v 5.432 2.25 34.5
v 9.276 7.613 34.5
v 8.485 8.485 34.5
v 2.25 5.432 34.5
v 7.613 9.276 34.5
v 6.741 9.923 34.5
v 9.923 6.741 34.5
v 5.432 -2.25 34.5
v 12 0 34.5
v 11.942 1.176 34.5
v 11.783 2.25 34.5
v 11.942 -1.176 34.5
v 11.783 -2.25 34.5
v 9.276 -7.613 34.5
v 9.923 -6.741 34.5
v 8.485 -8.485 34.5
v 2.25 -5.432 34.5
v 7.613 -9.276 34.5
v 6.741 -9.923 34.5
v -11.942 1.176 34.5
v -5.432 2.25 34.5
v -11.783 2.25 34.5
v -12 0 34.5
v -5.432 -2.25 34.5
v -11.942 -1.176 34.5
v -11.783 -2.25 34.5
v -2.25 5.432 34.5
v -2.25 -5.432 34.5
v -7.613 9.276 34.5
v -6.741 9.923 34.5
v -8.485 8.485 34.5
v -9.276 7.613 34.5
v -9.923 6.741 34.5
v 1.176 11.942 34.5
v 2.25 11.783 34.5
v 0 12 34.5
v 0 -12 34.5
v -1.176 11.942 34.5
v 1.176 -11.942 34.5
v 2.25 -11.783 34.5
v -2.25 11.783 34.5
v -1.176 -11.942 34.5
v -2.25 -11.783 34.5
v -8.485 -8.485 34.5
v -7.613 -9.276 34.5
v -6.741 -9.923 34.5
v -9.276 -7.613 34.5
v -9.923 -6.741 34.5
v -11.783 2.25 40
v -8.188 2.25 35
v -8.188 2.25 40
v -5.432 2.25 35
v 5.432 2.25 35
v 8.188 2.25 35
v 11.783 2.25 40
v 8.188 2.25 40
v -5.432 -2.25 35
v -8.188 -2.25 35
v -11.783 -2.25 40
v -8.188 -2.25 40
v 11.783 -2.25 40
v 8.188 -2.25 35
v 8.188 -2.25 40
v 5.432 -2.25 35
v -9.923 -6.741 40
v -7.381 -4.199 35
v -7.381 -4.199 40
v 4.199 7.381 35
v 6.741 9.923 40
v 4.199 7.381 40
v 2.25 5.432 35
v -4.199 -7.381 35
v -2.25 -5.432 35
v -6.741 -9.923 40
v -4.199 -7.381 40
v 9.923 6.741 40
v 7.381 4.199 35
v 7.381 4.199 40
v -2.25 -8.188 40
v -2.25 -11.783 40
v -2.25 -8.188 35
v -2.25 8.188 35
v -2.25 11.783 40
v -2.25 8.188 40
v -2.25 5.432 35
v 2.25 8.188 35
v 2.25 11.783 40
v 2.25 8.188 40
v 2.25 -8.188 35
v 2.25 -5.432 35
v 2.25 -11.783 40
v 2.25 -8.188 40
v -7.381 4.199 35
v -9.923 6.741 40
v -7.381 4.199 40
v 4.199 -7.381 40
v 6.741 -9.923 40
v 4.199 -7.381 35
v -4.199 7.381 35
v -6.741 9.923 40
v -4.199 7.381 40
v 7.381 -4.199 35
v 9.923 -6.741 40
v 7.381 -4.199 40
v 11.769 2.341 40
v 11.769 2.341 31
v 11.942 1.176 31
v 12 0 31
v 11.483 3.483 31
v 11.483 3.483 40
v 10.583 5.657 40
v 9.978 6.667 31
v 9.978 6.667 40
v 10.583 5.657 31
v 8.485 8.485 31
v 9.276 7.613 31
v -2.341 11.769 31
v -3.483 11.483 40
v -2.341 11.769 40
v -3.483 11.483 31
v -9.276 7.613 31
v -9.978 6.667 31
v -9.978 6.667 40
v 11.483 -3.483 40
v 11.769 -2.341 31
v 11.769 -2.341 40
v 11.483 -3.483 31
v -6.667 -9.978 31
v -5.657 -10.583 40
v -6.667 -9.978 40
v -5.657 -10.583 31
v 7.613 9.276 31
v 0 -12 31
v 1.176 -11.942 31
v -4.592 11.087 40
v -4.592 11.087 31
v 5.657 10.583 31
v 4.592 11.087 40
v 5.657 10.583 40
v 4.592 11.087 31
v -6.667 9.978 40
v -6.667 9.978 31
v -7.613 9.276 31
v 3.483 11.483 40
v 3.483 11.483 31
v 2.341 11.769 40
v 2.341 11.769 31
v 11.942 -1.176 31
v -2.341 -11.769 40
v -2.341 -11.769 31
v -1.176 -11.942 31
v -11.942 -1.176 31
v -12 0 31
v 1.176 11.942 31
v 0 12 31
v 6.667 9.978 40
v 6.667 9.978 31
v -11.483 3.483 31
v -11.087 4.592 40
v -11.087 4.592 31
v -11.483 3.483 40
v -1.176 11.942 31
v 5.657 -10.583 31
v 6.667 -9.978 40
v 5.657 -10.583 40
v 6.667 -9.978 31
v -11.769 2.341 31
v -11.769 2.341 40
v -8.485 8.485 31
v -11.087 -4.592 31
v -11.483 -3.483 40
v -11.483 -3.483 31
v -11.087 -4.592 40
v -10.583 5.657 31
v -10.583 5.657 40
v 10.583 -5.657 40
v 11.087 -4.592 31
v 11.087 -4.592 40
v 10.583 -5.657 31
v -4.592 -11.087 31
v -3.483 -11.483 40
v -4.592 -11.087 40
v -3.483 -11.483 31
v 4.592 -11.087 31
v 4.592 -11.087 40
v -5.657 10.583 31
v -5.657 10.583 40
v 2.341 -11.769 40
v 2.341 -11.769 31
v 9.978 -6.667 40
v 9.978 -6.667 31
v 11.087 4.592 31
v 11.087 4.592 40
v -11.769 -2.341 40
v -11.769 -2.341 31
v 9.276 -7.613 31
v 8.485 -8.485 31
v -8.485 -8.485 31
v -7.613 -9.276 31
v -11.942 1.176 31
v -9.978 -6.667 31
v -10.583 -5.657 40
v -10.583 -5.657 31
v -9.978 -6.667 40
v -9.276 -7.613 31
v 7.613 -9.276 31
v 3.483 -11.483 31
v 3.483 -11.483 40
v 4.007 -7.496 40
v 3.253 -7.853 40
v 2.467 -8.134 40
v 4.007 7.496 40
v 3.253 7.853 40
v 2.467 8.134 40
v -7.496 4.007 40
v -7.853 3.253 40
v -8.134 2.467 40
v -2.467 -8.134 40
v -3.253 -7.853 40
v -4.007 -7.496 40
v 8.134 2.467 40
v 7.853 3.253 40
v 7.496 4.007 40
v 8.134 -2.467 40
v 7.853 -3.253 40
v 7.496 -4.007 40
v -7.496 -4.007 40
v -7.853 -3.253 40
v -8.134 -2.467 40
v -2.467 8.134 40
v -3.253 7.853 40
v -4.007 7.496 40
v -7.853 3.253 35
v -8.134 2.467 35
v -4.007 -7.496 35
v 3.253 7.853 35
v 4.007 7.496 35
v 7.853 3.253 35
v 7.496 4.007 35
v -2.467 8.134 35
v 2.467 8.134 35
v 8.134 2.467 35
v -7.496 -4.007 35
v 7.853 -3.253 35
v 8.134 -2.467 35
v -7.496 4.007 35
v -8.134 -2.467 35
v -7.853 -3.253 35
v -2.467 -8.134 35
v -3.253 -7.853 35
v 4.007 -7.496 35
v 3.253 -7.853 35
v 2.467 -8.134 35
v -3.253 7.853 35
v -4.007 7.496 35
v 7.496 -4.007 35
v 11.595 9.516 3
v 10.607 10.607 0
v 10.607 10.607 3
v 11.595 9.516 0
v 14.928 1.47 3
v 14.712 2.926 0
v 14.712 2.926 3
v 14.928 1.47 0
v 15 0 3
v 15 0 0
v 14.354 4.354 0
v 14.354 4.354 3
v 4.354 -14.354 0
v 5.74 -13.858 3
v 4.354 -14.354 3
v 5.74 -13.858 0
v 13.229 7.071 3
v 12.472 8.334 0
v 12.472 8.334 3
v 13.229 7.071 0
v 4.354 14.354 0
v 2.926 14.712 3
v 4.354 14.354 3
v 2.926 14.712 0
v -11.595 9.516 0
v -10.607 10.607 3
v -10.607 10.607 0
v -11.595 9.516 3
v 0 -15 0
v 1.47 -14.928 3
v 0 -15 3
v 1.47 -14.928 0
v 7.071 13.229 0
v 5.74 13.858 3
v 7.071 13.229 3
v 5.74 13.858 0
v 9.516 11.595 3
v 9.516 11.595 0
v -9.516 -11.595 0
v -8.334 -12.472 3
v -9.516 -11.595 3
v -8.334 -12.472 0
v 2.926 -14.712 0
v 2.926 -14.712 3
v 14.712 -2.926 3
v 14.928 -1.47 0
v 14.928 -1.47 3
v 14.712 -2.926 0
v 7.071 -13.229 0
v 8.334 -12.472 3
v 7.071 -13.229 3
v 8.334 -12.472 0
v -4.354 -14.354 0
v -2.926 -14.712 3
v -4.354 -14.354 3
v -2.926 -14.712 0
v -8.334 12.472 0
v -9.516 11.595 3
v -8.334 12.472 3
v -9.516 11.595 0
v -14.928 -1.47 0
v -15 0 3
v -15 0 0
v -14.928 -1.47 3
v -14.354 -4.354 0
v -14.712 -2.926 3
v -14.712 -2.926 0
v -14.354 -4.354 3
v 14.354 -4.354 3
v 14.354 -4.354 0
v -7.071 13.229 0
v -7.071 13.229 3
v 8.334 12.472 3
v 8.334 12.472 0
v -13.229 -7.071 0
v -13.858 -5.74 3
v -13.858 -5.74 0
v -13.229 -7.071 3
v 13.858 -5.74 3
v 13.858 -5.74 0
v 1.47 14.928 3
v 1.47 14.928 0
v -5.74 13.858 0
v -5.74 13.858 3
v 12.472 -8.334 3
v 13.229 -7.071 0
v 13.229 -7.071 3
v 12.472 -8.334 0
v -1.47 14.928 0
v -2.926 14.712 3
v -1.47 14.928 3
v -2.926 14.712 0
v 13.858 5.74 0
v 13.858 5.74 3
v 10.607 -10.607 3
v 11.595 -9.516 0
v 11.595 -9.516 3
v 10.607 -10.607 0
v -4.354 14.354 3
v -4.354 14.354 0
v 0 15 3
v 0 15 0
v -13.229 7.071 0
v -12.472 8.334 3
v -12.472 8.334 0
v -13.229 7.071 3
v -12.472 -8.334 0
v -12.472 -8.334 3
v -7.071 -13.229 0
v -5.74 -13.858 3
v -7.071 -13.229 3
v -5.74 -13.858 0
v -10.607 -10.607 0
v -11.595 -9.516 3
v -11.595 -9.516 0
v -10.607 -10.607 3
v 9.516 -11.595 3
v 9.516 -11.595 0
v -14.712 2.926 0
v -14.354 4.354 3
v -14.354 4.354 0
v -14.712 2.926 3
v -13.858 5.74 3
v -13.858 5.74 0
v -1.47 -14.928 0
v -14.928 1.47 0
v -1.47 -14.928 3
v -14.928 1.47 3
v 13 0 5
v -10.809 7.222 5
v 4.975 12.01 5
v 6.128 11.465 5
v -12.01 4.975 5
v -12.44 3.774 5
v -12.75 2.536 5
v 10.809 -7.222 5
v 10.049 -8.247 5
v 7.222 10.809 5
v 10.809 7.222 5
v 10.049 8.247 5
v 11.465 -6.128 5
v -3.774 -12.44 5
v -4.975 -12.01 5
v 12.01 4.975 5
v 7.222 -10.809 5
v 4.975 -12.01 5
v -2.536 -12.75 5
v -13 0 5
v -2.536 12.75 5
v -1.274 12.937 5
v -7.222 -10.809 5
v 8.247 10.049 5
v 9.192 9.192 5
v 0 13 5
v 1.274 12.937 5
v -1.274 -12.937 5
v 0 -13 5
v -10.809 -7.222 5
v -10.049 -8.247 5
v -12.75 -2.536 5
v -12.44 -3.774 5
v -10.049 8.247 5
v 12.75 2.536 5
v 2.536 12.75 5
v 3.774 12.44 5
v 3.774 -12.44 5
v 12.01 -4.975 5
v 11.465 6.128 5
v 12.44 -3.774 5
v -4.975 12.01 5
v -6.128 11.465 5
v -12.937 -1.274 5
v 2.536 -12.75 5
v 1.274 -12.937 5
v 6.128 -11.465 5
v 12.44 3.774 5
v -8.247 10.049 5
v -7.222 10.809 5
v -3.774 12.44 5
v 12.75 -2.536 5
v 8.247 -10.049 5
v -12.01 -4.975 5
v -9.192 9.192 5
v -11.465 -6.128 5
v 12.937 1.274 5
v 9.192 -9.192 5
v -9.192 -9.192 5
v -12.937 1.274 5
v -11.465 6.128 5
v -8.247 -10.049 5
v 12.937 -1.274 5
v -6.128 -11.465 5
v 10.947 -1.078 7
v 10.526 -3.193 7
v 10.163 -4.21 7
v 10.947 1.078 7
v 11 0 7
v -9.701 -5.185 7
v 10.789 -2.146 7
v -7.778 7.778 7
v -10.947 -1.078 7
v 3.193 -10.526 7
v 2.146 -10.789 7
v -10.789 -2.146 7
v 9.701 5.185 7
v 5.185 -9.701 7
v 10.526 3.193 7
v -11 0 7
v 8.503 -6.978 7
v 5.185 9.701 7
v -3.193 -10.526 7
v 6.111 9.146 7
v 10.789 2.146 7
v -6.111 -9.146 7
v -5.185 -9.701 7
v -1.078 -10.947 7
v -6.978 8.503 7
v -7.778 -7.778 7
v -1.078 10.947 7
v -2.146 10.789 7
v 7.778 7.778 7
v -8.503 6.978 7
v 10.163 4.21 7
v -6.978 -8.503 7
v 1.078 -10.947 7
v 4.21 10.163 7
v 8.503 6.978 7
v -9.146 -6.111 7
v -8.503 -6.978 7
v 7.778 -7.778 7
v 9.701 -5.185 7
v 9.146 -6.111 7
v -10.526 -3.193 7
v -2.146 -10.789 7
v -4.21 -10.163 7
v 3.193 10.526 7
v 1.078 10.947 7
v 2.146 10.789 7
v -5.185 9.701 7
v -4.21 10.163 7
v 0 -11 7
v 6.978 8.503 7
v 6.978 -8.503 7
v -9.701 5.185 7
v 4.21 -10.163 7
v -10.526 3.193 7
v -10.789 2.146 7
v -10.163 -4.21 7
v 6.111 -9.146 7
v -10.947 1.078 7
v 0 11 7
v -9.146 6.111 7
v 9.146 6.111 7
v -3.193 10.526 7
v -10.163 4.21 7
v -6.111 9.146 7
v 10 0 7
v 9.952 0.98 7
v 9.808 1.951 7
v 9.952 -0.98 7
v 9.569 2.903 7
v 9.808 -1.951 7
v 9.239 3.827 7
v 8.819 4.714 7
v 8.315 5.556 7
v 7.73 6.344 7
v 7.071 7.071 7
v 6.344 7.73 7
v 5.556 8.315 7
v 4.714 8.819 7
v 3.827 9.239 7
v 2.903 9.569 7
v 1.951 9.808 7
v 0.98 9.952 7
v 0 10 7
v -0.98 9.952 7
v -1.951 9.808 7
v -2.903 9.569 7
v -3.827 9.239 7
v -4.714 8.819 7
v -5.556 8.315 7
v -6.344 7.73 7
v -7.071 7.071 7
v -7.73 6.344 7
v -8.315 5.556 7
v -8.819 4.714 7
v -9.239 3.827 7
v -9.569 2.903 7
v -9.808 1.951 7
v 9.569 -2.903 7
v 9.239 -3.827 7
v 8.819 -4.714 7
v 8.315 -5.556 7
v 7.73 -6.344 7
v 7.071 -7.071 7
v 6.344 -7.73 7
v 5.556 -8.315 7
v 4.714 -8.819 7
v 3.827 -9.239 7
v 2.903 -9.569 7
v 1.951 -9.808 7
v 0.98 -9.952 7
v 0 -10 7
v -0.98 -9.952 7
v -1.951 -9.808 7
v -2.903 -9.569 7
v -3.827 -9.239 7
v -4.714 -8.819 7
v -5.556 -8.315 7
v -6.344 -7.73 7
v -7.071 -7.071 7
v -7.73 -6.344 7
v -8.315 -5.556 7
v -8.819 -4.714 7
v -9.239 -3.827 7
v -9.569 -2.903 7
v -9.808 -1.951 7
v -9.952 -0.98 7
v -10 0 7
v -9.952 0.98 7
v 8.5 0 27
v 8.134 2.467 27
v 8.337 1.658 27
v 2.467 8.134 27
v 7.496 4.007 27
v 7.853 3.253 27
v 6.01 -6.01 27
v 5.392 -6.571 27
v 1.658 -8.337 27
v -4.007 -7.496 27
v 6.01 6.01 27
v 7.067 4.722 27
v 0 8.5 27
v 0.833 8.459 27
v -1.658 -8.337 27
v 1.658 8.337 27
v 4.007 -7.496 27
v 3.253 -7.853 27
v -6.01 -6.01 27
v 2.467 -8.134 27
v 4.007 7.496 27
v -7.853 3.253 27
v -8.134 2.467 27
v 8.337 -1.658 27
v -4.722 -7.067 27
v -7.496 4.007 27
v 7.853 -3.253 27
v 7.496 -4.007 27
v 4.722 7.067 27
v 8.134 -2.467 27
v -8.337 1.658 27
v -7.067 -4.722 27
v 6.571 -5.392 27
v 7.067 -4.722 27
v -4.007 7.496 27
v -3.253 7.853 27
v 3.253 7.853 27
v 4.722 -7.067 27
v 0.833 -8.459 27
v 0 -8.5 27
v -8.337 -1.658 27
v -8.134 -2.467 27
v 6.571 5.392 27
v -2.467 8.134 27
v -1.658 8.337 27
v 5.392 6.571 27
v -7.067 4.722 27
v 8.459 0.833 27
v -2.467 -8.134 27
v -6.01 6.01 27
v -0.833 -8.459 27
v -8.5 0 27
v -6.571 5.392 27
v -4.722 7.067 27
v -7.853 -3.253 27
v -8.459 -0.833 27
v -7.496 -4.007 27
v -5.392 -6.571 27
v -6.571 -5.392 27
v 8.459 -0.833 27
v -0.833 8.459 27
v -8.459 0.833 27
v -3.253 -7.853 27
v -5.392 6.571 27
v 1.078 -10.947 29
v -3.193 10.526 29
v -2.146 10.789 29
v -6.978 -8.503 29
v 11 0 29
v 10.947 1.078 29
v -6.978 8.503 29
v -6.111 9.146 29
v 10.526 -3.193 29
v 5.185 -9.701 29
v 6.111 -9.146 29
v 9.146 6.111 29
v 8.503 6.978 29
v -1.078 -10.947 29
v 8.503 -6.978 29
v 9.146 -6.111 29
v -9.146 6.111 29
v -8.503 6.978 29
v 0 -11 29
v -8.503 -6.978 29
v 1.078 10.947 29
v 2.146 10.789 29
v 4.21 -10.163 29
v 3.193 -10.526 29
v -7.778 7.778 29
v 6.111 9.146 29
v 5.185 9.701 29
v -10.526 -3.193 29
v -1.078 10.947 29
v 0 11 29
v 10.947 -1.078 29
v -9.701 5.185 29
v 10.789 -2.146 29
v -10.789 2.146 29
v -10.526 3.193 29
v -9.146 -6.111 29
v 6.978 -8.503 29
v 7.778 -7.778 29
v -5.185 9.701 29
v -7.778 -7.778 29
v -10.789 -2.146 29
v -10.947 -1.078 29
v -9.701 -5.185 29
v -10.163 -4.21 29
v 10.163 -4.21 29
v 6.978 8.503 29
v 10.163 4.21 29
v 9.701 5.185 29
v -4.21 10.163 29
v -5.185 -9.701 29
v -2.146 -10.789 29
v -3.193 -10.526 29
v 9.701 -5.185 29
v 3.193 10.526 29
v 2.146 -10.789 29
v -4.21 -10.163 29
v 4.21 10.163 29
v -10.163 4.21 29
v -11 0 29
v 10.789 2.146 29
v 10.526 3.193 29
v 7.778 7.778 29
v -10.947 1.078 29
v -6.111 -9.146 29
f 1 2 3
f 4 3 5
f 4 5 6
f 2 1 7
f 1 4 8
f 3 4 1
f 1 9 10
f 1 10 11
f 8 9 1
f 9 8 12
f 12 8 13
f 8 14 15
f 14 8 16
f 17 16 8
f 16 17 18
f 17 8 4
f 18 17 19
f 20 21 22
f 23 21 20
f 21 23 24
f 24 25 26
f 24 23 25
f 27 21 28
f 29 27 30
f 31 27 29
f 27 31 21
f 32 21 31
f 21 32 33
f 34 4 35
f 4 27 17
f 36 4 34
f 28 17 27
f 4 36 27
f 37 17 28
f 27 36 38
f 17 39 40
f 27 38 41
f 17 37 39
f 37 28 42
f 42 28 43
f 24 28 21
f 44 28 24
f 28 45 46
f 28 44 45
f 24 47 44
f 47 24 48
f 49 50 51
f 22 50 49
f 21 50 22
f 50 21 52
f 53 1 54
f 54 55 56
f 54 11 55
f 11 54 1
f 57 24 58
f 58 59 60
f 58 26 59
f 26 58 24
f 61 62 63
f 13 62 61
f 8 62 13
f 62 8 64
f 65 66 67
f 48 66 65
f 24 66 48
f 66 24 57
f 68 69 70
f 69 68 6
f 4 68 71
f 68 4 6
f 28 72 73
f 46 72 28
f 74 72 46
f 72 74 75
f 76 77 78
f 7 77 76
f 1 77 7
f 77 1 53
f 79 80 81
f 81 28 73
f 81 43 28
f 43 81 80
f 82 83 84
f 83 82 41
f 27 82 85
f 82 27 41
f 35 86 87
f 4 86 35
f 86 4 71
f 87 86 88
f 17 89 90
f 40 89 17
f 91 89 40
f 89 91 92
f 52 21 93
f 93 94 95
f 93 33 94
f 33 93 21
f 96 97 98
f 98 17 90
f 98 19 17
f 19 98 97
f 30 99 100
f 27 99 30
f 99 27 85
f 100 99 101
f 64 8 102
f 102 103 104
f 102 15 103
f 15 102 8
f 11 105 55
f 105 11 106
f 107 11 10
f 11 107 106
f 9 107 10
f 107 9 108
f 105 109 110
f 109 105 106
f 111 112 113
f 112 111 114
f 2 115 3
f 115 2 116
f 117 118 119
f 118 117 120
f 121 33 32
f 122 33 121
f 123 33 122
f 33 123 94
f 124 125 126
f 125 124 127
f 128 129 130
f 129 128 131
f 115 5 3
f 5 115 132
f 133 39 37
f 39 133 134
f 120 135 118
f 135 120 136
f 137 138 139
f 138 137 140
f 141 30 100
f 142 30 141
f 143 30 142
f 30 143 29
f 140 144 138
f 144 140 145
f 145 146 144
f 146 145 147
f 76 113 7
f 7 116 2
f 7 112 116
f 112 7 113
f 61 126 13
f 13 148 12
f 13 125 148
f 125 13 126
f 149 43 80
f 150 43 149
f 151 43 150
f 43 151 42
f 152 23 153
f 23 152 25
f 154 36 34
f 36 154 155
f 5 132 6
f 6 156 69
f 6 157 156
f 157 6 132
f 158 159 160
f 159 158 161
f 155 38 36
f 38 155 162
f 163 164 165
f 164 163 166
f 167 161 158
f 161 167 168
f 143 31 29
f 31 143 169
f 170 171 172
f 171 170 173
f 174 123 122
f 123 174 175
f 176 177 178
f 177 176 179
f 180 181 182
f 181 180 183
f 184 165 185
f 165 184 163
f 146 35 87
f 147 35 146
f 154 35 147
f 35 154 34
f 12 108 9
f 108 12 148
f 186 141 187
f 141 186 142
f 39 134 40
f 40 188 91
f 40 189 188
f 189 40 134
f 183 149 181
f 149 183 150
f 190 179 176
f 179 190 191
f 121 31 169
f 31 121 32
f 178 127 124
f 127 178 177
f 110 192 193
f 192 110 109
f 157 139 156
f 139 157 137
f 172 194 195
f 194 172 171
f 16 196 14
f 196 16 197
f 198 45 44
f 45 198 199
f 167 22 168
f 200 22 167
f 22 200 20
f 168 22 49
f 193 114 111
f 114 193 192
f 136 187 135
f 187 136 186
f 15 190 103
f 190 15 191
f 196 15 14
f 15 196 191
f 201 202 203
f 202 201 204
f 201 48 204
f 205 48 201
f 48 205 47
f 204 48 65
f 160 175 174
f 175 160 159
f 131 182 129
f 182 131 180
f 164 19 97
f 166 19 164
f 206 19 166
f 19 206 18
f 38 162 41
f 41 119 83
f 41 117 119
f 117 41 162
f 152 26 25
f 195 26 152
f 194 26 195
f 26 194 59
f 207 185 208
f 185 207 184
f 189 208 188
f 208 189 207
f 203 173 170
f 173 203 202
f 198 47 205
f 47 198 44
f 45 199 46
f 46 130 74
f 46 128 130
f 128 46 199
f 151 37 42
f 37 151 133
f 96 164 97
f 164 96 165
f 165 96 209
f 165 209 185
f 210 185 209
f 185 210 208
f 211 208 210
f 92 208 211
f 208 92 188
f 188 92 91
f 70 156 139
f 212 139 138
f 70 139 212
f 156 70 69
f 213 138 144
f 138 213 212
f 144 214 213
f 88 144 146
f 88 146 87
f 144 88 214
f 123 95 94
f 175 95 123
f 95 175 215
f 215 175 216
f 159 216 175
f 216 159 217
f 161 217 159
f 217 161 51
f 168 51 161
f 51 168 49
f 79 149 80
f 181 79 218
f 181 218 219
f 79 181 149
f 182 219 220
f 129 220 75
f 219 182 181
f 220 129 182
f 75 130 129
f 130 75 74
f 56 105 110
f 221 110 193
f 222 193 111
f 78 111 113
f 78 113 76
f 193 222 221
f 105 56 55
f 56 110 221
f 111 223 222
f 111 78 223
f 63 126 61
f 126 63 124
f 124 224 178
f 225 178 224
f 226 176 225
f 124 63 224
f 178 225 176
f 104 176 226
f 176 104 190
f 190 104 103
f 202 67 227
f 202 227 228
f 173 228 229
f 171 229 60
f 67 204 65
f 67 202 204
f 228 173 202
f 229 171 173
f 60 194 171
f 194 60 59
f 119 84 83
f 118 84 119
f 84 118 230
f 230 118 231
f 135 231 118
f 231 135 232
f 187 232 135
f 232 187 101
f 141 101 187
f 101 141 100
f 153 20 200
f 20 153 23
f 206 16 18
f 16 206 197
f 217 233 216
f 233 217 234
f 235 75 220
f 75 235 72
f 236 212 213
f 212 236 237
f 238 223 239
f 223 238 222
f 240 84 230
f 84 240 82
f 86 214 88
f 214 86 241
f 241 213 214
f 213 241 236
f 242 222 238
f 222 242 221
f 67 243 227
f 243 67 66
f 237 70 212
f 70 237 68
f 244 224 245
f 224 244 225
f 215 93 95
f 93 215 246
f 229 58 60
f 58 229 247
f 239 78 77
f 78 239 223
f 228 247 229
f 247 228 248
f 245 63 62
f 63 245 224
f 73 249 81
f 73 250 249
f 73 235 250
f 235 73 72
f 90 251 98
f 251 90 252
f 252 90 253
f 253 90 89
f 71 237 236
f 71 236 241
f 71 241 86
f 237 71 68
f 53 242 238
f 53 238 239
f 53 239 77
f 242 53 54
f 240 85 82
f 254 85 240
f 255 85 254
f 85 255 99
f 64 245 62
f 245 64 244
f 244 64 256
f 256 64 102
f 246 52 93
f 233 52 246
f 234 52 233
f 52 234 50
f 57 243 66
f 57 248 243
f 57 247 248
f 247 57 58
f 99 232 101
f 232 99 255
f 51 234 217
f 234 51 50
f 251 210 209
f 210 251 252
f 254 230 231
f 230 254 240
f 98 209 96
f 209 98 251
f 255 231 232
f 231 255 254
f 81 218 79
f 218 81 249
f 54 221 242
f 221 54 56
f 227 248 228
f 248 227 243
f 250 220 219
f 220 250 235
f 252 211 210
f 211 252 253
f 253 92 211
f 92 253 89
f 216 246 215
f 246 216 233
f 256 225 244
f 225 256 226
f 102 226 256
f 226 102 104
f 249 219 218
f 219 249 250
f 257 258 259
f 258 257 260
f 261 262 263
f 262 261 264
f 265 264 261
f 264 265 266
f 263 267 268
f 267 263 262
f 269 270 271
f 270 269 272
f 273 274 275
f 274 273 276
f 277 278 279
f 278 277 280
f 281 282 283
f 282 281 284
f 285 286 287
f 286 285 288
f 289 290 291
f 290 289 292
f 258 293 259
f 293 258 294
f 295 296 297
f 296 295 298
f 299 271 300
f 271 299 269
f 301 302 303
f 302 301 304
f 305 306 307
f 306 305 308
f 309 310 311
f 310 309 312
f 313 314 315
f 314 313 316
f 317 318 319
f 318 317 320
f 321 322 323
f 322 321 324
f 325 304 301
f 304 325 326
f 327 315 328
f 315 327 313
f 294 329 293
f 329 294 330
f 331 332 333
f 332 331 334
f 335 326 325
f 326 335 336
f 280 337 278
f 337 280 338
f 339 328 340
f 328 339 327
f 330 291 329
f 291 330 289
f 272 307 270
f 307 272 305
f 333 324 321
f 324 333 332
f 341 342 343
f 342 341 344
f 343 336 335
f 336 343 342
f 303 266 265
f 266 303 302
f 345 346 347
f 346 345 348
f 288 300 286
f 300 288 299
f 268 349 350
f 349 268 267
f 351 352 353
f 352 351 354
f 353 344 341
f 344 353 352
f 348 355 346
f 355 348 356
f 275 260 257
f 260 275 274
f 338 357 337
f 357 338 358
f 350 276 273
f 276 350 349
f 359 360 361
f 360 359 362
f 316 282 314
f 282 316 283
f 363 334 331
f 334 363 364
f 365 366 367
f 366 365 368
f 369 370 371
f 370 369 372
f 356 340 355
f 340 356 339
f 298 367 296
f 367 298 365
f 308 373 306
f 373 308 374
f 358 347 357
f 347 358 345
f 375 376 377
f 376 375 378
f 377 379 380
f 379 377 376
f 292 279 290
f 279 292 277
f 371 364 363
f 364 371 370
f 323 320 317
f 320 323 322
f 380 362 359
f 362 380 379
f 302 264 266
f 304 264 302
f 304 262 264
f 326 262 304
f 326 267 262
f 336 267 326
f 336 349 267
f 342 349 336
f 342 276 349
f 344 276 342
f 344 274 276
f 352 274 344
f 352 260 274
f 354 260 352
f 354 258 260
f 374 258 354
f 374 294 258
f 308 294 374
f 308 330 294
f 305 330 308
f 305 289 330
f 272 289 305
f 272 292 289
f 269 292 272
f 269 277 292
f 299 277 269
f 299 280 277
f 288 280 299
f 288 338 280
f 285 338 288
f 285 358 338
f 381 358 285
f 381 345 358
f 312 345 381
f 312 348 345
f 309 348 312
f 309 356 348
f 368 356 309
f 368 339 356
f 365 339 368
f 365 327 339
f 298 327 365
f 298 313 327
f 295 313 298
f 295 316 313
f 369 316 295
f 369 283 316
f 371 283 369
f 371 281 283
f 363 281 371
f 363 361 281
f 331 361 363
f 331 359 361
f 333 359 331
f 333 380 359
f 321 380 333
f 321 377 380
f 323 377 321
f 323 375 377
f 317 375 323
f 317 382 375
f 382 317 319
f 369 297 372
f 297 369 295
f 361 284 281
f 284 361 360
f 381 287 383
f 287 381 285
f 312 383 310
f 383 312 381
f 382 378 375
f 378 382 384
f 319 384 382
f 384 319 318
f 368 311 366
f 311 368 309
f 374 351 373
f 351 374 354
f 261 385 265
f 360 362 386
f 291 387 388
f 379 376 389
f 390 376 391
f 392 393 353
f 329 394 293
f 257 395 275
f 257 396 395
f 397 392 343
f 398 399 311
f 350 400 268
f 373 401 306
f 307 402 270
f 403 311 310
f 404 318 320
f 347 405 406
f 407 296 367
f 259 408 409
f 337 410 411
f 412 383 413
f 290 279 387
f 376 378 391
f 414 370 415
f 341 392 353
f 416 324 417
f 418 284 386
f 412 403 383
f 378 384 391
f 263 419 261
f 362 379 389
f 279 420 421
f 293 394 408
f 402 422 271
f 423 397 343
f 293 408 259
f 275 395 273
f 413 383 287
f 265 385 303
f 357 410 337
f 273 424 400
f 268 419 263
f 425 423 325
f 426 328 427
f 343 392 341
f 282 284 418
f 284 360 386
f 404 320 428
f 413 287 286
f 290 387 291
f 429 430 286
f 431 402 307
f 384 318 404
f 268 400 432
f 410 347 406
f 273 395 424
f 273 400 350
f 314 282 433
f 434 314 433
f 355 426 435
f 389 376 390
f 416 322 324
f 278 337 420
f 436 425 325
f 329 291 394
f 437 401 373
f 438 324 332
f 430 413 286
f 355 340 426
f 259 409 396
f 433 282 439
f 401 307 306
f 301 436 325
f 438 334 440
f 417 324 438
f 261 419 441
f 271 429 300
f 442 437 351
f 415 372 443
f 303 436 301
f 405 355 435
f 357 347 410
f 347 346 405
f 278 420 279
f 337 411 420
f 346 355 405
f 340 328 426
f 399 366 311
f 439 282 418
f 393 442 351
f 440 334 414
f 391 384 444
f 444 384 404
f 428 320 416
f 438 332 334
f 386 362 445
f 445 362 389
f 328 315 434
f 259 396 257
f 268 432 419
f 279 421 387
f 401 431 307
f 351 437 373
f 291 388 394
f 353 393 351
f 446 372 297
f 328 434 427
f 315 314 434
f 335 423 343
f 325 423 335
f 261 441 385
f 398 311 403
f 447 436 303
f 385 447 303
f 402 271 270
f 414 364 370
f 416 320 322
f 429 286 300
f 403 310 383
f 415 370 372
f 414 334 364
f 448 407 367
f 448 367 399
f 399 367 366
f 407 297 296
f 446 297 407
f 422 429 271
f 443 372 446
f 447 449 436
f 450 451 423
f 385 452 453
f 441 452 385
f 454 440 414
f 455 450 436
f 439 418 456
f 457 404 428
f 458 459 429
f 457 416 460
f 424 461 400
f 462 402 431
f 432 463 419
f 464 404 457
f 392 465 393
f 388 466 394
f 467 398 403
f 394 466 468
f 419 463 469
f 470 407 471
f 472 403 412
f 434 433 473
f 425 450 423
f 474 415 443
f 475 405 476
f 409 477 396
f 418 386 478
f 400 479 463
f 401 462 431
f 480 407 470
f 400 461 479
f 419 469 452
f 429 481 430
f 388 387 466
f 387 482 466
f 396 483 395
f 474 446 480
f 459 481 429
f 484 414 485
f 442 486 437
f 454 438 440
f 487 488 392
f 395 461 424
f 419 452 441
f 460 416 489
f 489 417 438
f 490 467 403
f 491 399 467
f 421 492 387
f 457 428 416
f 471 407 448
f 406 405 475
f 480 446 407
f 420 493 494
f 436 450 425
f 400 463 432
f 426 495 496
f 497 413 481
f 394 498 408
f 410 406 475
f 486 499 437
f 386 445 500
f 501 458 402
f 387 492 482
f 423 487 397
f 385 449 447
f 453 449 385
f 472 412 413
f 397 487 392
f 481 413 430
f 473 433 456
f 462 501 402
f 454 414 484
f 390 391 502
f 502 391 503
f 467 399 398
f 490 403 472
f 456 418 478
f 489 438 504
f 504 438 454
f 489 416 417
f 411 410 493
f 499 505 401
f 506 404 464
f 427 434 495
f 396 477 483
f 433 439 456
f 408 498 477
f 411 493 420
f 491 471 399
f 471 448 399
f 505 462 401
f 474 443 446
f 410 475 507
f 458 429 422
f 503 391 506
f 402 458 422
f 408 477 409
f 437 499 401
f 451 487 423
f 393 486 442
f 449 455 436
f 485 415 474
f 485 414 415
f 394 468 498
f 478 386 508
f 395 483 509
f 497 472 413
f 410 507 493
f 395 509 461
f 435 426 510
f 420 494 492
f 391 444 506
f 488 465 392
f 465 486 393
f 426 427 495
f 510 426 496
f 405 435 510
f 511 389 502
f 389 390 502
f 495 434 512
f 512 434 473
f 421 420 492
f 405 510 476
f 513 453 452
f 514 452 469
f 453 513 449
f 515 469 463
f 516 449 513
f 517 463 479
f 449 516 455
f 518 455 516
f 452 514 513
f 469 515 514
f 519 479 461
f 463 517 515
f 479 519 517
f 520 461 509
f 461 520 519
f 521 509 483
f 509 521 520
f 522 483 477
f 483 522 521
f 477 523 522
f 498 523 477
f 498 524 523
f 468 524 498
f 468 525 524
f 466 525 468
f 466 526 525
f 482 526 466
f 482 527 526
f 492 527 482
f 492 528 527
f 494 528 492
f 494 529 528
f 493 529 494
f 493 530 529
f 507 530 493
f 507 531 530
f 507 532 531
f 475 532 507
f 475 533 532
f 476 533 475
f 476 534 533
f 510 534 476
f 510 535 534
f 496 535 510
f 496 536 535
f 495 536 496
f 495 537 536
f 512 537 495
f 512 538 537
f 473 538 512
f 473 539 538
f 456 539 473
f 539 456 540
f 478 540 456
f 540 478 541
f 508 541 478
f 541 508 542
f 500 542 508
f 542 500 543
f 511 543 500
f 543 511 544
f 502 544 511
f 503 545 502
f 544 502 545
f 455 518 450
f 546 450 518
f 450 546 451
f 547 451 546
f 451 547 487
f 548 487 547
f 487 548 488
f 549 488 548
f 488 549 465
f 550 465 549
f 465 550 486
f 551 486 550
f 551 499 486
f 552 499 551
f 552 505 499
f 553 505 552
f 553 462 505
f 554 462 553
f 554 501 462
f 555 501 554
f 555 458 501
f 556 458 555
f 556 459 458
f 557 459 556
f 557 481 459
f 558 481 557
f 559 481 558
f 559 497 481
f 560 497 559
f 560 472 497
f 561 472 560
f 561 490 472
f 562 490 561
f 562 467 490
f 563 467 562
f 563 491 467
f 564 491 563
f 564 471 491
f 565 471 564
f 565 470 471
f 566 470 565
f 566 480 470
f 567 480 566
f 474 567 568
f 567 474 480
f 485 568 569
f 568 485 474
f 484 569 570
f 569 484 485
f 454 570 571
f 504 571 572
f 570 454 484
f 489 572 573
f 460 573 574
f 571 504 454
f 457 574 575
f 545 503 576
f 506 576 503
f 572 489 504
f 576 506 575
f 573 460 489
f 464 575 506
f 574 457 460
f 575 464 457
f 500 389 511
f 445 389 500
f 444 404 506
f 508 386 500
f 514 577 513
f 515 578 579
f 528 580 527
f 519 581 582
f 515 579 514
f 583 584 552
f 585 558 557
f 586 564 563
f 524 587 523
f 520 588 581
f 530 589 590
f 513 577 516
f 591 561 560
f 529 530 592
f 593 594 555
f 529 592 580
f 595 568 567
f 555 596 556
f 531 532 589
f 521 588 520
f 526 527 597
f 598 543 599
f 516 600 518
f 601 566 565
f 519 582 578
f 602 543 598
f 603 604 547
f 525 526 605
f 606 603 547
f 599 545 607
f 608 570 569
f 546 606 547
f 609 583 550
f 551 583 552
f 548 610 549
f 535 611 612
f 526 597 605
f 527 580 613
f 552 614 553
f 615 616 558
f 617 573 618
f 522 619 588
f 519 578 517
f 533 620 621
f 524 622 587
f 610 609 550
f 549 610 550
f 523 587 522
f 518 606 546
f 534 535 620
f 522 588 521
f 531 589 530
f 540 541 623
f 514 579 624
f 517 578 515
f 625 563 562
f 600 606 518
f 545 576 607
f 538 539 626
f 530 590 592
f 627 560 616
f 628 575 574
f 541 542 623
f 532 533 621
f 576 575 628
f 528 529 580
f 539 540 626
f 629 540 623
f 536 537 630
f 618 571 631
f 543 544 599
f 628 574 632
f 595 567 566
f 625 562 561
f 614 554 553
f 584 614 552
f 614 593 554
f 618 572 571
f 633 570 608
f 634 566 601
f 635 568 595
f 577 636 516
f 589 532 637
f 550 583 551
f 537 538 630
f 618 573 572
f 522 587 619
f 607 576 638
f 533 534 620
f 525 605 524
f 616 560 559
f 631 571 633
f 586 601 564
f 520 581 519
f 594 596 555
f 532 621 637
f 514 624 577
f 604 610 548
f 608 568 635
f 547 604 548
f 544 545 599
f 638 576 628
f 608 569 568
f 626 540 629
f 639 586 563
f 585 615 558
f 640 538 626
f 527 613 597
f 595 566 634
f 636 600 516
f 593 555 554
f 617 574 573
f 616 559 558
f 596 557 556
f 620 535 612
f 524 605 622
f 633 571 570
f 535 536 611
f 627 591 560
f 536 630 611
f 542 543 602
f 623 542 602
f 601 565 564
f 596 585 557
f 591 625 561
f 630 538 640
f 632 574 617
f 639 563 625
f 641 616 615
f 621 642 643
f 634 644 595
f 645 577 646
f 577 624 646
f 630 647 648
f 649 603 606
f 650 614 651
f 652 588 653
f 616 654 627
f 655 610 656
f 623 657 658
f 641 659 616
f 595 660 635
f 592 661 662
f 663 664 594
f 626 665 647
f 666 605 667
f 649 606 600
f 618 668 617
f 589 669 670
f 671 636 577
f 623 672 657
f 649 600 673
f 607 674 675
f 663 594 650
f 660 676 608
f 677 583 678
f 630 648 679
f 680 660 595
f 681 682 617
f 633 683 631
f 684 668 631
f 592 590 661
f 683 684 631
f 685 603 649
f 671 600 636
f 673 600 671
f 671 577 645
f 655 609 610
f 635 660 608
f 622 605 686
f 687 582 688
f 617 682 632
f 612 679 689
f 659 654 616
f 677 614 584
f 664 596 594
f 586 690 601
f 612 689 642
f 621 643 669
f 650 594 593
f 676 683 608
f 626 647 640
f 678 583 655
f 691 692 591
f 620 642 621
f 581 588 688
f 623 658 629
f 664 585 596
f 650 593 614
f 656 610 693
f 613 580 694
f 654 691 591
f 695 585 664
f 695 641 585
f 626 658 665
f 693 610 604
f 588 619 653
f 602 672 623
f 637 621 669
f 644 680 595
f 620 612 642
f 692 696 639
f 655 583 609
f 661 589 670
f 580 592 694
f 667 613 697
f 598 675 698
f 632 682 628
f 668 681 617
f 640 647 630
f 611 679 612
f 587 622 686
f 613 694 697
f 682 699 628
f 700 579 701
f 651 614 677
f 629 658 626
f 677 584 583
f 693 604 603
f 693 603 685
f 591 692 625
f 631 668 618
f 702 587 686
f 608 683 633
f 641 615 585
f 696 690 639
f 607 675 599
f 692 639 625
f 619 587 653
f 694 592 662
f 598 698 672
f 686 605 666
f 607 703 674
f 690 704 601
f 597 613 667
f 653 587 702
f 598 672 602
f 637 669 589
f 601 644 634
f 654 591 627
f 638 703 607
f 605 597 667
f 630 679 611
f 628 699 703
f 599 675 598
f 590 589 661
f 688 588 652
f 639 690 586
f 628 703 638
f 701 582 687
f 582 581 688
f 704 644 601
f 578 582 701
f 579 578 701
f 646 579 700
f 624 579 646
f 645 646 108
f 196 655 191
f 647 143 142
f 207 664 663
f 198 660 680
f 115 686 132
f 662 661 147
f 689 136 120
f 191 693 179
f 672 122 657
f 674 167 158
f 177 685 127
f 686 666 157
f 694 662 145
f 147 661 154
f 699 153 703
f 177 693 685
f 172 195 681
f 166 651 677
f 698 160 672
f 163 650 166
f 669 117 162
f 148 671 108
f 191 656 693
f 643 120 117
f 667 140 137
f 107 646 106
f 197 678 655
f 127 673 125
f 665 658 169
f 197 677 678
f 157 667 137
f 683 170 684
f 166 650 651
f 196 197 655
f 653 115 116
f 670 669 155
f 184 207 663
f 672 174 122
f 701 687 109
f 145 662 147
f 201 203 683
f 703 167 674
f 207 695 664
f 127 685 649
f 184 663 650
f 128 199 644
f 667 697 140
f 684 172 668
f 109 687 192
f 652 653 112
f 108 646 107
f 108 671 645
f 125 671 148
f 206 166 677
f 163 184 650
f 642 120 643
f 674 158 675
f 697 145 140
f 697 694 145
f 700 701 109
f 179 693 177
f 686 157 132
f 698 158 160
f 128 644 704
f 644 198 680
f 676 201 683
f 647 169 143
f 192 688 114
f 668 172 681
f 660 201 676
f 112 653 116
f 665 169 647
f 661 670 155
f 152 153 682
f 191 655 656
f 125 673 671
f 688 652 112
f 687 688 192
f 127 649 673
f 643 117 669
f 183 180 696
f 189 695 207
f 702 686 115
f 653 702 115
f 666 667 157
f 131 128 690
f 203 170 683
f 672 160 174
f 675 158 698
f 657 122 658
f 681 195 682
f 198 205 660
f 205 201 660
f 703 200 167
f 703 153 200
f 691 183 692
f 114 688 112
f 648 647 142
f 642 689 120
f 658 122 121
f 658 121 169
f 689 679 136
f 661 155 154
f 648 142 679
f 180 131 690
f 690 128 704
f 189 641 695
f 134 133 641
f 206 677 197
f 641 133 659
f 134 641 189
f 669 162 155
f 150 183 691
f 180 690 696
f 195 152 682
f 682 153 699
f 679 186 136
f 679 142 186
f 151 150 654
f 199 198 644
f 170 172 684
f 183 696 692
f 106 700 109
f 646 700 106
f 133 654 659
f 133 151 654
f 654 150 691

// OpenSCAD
// Chess Rook Model - Improved Proportions

$fn = 64;

module rook() {
    // --- Base Section ---
    // Bottom flange
    cylinder(h = 3, r1 = 15, r2 = 15);
    // Rounded transition
    translate([0, 0, 3]) cylinder(h = 2, r1 = 15, r2 = 13);
    // Secondary base tier
    translate([0, 0, 5]) cylinder(h = 2, r1 = 13, r2 = 11);
    
    // --- Shaft Section ---
    // Tapered column
    translate([0, 0, 7]) cylinder(h = 20, r1 = 10, r2 = 8.5);
    
    // --- Capital/Top Section ---
    // Collar
    translate([0, 0, 27]) cylinder(h = 2, r1 = 8.5, r2 = 11);
    translate([0, 0, 29]) cylinder(h = 2, r1 = 11, r2 = 12);
    
    // Battlements (The Crown)
    difference() {
        // Main cylindrical head
        translate([0, 0, 31]) cylinder(h = 9, r = 12);
        
        // Internal hollow (the well)
        translate([0, 0, 35]) cylinder(h = 6, r = 8.5);
        
        // Crenels (Slots) - Increased gap for clarity
        for (i = [0 : 3]) {
            rotate([0, 0, i * 45])
                translate([0, 0, 37.5])
                    cube([30, 4.5, 6], center = true);
        }
    }
}

// Center the model
translate([0, 0, 0]) rook();
